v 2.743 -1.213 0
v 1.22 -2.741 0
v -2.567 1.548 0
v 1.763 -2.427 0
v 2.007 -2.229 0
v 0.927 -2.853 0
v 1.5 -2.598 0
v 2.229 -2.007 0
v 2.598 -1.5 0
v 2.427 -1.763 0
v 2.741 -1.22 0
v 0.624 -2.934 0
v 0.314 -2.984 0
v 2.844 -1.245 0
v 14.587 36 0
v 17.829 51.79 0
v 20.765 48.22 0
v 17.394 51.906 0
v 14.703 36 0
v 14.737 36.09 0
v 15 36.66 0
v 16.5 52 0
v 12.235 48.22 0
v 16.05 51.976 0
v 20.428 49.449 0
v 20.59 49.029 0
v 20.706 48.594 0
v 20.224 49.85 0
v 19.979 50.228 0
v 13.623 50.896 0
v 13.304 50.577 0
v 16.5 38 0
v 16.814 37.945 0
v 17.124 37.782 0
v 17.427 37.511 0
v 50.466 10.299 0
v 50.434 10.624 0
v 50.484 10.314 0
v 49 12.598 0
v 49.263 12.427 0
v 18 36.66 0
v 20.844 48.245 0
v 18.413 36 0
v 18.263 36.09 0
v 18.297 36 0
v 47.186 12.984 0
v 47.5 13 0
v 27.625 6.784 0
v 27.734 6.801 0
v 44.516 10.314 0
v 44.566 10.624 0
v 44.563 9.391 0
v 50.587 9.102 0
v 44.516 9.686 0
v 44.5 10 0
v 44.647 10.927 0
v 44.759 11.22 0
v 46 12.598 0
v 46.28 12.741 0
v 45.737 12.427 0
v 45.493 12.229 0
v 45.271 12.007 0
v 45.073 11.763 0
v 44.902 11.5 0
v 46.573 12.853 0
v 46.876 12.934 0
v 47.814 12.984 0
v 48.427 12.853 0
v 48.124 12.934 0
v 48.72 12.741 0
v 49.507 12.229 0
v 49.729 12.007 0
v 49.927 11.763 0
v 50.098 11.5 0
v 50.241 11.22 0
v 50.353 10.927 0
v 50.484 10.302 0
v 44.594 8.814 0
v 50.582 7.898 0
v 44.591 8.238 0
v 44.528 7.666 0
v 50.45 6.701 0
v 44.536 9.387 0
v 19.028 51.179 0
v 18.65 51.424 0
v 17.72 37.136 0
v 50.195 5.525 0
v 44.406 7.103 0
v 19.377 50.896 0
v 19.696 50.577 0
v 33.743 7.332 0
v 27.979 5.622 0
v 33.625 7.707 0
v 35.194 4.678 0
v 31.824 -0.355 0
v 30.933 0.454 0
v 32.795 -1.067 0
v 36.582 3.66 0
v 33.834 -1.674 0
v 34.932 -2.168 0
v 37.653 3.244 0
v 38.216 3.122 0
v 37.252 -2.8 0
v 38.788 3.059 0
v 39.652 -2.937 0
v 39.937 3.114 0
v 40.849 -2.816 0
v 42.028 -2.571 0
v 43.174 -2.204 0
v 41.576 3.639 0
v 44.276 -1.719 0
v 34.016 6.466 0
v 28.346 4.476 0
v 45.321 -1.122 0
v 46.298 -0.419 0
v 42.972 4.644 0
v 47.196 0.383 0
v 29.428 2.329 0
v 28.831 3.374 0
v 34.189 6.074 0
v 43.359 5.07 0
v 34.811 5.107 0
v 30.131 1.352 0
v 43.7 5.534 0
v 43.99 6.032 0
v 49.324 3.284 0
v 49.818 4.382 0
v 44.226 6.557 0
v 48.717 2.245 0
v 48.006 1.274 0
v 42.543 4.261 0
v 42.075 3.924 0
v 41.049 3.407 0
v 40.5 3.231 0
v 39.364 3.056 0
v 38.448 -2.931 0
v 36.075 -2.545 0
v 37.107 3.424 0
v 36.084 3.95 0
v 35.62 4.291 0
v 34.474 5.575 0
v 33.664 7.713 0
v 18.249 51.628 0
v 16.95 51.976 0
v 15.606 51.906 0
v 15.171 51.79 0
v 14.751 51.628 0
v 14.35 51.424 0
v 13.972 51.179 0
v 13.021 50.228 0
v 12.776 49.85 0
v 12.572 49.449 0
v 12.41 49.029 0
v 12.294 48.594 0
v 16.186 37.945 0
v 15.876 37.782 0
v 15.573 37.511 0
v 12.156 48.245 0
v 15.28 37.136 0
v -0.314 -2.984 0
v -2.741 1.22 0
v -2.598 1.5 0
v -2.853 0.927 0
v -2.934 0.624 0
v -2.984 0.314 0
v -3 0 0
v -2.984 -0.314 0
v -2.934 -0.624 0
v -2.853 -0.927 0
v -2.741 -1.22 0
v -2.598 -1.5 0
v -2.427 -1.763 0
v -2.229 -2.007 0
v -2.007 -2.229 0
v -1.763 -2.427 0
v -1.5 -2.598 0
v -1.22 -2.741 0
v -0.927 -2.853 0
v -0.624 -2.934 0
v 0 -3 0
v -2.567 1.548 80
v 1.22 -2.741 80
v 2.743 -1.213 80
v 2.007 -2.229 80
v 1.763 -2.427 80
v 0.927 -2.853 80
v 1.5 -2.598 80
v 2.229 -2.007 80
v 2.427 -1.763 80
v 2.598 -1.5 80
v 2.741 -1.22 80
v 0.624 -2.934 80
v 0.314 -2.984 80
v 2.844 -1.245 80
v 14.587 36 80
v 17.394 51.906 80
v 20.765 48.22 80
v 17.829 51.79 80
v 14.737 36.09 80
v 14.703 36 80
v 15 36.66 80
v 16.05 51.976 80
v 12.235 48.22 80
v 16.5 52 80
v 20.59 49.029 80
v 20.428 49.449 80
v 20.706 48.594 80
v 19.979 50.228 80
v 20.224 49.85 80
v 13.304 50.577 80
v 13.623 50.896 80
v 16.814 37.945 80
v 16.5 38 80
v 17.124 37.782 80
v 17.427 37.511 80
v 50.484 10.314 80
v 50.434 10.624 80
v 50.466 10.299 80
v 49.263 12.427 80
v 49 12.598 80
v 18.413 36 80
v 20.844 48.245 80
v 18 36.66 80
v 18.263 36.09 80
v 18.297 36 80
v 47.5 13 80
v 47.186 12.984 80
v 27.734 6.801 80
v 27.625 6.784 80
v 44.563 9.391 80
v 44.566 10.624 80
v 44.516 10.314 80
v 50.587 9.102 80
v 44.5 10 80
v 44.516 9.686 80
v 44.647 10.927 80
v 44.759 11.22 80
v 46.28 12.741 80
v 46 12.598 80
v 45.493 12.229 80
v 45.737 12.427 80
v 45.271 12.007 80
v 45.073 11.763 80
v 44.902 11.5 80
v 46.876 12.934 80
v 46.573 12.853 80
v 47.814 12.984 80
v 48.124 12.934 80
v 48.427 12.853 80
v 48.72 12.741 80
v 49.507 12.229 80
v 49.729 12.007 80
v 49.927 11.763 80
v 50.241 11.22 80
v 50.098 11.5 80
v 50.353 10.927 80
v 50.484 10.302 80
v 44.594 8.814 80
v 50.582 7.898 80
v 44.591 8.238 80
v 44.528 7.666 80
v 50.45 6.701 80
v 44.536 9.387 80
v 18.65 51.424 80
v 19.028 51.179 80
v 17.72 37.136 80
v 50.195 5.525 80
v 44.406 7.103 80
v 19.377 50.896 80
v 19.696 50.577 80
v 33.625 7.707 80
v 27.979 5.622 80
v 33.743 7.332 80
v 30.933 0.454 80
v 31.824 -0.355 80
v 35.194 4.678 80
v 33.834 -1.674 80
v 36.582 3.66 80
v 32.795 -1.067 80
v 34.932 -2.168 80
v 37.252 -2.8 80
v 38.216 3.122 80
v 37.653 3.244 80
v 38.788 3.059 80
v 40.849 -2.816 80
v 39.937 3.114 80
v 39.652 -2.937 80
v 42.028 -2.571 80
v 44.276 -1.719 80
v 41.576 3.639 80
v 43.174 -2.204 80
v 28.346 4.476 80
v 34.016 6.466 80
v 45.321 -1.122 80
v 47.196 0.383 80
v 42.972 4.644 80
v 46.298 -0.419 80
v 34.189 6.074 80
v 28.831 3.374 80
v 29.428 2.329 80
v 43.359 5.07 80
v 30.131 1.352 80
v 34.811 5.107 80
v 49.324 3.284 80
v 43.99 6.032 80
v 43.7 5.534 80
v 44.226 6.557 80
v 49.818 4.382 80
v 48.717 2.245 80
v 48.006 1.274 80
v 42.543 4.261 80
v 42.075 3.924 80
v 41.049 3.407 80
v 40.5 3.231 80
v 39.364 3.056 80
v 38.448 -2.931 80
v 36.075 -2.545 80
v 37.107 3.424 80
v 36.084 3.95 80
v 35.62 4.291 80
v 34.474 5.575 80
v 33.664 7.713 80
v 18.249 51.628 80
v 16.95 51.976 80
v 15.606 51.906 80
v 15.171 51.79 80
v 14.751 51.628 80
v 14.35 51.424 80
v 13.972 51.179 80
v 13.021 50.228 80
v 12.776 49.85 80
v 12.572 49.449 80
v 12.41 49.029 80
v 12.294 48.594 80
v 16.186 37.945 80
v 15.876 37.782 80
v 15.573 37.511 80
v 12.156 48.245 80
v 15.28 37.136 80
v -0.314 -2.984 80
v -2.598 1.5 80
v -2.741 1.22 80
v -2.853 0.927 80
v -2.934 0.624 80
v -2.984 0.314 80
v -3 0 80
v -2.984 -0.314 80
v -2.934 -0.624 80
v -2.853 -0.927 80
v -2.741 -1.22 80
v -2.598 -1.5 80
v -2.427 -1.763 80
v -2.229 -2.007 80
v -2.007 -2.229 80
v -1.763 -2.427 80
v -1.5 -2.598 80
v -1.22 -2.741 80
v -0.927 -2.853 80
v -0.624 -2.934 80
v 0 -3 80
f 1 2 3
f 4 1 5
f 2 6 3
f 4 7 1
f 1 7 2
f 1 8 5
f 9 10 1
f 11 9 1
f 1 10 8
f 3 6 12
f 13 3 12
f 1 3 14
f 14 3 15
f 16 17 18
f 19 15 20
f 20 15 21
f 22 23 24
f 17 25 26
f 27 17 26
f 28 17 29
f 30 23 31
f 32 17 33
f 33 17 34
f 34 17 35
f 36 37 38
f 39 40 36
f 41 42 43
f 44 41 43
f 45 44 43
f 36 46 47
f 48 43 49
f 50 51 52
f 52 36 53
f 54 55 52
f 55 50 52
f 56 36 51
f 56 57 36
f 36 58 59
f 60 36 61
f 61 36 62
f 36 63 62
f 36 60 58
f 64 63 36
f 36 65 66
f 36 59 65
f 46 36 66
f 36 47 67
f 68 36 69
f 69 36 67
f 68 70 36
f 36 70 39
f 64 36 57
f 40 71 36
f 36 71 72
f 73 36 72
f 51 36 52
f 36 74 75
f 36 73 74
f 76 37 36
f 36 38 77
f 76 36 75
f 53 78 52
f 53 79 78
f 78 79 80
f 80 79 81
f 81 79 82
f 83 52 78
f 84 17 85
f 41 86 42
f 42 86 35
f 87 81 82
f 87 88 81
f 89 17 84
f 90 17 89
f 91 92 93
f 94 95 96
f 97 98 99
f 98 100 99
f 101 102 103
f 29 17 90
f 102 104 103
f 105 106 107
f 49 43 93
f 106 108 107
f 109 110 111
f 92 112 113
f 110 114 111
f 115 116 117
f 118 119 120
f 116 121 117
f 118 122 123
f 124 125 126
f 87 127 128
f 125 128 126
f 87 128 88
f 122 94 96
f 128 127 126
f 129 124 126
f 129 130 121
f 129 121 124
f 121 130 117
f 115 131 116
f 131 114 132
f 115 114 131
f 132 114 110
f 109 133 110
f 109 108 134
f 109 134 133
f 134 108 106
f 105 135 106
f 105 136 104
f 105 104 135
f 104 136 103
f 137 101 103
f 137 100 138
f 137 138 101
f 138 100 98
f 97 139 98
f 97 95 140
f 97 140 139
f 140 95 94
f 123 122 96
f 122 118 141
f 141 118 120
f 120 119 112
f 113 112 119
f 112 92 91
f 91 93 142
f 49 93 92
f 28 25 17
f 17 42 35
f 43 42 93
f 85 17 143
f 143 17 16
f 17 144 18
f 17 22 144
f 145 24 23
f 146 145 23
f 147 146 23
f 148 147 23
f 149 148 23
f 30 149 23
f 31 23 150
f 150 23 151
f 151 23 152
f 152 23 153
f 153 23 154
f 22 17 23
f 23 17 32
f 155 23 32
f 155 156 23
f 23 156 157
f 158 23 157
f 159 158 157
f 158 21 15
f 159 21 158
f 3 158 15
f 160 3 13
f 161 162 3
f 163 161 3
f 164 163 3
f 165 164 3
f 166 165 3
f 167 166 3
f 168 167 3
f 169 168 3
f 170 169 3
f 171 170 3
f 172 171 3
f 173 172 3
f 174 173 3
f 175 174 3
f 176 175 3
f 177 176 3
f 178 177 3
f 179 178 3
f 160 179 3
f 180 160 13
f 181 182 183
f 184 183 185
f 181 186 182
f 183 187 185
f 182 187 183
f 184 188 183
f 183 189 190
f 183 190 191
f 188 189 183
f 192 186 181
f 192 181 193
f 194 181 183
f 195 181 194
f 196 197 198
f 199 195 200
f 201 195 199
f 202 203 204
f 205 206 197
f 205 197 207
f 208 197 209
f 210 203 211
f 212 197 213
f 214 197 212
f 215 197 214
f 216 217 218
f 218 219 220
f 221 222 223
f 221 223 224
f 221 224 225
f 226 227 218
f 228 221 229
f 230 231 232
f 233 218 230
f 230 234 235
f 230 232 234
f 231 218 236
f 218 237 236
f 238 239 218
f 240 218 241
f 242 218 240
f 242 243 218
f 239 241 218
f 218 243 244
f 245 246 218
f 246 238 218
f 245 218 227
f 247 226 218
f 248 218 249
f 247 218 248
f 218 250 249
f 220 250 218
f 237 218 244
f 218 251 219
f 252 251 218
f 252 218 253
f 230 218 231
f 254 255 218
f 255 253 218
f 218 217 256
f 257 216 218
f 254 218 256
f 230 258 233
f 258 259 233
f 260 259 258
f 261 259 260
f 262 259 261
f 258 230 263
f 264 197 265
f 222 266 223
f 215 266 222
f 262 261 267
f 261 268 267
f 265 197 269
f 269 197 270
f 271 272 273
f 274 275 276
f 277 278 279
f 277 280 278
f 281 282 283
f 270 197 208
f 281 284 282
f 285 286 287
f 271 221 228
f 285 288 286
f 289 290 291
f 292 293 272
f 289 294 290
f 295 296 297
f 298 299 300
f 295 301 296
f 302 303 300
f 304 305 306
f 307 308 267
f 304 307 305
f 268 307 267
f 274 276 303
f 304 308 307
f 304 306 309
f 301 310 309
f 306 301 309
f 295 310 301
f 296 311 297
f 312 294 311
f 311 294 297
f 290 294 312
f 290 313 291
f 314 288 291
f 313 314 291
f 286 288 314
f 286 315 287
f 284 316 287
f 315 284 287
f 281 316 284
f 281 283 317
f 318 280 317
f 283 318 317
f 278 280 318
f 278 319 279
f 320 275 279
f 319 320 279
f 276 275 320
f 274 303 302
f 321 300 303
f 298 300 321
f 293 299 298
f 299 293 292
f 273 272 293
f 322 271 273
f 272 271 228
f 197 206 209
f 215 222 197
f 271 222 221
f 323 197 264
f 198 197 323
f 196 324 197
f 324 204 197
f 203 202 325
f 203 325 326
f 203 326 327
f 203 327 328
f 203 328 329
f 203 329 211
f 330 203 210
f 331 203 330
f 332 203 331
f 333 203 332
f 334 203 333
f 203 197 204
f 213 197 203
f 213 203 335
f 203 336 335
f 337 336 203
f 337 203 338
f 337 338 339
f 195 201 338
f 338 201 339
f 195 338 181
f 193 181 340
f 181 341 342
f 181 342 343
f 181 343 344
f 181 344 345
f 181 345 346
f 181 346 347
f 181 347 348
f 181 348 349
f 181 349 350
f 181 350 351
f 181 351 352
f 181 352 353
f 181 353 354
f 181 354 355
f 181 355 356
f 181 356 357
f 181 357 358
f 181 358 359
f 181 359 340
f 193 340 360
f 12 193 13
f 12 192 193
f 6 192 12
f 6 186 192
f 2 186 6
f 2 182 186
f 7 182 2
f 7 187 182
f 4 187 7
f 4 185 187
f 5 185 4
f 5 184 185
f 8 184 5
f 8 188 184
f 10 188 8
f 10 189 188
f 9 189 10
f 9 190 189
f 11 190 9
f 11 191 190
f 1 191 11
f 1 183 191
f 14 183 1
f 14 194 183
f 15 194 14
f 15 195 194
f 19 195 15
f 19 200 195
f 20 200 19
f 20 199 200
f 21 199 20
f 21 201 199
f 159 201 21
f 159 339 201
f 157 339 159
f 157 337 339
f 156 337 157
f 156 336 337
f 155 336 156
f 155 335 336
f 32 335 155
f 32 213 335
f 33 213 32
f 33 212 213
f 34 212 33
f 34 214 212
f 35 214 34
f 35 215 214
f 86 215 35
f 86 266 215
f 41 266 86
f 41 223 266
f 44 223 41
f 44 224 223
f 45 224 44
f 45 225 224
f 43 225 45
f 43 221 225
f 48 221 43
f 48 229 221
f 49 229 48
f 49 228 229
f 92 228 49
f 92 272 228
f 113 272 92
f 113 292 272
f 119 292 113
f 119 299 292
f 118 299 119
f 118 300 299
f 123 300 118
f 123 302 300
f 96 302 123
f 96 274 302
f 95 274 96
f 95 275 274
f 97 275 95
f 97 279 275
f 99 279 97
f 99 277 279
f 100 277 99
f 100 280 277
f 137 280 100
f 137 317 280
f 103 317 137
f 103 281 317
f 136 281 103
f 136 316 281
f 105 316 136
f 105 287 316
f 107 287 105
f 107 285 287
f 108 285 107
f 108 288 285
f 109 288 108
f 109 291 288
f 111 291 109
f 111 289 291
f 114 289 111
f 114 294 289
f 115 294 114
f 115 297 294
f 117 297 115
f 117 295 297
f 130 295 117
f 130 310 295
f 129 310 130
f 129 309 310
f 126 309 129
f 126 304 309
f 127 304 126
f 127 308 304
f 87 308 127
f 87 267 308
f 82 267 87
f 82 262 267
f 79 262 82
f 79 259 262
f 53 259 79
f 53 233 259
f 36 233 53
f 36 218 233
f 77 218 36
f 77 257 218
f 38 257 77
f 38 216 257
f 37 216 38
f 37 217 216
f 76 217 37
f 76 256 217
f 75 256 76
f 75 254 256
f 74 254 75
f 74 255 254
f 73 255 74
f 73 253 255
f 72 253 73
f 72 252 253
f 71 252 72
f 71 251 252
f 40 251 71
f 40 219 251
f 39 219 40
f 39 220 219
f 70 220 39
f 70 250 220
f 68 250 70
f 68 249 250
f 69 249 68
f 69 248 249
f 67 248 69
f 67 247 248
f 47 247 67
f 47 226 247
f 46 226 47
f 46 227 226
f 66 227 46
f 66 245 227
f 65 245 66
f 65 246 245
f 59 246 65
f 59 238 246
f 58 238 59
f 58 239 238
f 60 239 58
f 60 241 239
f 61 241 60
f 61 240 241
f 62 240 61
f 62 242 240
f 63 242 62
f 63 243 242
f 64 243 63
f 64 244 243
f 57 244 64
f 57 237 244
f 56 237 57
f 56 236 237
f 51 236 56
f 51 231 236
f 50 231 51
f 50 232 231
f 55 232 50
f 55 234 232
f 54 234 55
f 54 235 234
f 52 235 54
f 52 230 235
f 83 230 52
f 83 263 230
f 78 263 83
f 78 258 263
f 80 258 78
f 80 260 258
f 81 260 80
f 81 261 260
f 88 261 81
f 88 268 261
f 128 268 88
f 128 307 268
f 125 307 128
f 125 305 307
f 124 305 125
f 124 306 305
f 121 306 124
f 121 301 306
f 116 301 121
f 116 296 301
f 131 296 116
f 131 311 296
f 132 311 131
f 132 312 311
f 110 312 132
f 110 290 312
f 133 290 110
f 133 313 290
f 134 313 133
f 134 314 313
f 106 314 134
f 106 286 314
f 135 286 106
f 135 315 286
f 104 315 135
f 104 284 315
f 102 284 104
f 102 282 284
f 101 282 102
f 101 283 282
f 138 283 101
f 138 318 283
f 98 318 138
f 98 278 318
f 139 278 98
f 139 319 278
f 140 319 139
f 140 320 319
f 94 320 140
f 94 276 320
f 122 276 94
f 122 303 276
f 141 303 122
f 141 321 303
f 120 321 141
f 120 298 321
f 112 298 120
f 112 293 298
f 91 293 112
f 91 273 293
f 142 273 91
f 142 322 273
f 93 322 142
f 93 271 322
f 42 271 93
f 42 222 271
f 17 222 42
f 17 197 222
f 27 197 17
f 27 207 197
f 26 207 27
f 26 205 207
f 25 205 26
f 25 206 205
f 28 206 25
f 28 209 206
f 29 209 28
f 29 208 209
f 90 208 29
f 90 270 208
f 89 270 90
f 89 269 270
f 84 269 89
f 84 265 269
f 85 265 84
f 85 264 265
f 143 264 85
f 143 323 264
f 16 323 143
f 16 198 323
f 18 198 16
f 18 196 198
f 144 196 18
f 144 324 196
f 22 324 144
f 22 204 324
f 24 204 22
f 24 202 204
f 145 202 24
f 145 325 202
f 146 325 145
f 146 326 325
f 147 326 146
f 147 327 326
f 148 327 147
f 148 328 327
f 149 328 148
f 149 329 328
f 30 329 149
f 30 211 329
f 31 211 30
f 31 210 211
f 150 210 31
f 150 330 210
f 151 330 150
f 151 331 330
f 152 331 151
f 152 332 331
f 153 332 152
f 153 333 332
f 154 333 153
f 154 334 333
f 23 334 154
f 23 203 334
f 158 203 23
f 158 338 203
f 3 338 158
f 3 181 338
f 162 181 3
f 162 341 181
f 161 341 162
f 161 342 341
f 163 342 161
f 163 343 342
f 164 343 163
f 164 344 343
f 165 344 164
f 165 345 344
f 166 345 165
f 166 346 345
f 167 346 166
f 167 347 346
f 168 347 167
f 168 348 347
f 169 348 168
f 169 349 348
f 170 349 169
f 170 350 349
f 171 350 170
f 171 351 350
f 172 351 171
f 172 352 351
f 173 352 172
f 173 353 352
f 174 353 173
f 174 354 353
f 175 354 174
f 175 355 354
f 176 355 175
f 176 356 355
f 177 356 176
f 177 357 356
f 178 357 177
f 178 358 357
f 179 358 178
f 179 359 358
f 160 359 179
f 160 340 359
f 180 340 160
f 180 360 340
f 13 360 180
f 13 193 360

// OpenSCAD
// Halter

$fn=60;

linear_extrude(80)
difference() {
     m1();
     m2();
}

module m1() {
     circle(3);
     translate([33,0,0])
     circle(3);
     translate([33+14.5,10,0])
     circle(3);
     translate([0,23.5,0]) {
         translate([8.5-1,0,0])
         rotate(72.5)
         square([50,6], true);
         translate([24.5+1,0,0])
         rotate(-72.5)
         square([50,6], true);
     }
     translate([33/2,50-2.3,0])
     circle(4.3);
     translate([33/2,28,0])
     difference() {
         scale([3,10,1])
         circle(2);
         scale([3,10,1])
         circle(1);
         translate([0,-10,0])
         square([50,16+20], true);
     }

     translate([40-0.9,(5.5+6)/2+3-0.2,0])
     rotate(17.5/2)
     difference() {
         circle(5.5+6);
         circle(5.5);
         translate([0,10,0])
         square([30,20], true);
     }
}


module m2() {
     translate([40-0.9,(5.5+6)/2+3-0.2,0])
     rotate(17.5/2)
     difference() {
         circle(5.5+9);
         circle(5.5+6);
         translate([0,10,0])
         square([30,20], true);
     }
}
